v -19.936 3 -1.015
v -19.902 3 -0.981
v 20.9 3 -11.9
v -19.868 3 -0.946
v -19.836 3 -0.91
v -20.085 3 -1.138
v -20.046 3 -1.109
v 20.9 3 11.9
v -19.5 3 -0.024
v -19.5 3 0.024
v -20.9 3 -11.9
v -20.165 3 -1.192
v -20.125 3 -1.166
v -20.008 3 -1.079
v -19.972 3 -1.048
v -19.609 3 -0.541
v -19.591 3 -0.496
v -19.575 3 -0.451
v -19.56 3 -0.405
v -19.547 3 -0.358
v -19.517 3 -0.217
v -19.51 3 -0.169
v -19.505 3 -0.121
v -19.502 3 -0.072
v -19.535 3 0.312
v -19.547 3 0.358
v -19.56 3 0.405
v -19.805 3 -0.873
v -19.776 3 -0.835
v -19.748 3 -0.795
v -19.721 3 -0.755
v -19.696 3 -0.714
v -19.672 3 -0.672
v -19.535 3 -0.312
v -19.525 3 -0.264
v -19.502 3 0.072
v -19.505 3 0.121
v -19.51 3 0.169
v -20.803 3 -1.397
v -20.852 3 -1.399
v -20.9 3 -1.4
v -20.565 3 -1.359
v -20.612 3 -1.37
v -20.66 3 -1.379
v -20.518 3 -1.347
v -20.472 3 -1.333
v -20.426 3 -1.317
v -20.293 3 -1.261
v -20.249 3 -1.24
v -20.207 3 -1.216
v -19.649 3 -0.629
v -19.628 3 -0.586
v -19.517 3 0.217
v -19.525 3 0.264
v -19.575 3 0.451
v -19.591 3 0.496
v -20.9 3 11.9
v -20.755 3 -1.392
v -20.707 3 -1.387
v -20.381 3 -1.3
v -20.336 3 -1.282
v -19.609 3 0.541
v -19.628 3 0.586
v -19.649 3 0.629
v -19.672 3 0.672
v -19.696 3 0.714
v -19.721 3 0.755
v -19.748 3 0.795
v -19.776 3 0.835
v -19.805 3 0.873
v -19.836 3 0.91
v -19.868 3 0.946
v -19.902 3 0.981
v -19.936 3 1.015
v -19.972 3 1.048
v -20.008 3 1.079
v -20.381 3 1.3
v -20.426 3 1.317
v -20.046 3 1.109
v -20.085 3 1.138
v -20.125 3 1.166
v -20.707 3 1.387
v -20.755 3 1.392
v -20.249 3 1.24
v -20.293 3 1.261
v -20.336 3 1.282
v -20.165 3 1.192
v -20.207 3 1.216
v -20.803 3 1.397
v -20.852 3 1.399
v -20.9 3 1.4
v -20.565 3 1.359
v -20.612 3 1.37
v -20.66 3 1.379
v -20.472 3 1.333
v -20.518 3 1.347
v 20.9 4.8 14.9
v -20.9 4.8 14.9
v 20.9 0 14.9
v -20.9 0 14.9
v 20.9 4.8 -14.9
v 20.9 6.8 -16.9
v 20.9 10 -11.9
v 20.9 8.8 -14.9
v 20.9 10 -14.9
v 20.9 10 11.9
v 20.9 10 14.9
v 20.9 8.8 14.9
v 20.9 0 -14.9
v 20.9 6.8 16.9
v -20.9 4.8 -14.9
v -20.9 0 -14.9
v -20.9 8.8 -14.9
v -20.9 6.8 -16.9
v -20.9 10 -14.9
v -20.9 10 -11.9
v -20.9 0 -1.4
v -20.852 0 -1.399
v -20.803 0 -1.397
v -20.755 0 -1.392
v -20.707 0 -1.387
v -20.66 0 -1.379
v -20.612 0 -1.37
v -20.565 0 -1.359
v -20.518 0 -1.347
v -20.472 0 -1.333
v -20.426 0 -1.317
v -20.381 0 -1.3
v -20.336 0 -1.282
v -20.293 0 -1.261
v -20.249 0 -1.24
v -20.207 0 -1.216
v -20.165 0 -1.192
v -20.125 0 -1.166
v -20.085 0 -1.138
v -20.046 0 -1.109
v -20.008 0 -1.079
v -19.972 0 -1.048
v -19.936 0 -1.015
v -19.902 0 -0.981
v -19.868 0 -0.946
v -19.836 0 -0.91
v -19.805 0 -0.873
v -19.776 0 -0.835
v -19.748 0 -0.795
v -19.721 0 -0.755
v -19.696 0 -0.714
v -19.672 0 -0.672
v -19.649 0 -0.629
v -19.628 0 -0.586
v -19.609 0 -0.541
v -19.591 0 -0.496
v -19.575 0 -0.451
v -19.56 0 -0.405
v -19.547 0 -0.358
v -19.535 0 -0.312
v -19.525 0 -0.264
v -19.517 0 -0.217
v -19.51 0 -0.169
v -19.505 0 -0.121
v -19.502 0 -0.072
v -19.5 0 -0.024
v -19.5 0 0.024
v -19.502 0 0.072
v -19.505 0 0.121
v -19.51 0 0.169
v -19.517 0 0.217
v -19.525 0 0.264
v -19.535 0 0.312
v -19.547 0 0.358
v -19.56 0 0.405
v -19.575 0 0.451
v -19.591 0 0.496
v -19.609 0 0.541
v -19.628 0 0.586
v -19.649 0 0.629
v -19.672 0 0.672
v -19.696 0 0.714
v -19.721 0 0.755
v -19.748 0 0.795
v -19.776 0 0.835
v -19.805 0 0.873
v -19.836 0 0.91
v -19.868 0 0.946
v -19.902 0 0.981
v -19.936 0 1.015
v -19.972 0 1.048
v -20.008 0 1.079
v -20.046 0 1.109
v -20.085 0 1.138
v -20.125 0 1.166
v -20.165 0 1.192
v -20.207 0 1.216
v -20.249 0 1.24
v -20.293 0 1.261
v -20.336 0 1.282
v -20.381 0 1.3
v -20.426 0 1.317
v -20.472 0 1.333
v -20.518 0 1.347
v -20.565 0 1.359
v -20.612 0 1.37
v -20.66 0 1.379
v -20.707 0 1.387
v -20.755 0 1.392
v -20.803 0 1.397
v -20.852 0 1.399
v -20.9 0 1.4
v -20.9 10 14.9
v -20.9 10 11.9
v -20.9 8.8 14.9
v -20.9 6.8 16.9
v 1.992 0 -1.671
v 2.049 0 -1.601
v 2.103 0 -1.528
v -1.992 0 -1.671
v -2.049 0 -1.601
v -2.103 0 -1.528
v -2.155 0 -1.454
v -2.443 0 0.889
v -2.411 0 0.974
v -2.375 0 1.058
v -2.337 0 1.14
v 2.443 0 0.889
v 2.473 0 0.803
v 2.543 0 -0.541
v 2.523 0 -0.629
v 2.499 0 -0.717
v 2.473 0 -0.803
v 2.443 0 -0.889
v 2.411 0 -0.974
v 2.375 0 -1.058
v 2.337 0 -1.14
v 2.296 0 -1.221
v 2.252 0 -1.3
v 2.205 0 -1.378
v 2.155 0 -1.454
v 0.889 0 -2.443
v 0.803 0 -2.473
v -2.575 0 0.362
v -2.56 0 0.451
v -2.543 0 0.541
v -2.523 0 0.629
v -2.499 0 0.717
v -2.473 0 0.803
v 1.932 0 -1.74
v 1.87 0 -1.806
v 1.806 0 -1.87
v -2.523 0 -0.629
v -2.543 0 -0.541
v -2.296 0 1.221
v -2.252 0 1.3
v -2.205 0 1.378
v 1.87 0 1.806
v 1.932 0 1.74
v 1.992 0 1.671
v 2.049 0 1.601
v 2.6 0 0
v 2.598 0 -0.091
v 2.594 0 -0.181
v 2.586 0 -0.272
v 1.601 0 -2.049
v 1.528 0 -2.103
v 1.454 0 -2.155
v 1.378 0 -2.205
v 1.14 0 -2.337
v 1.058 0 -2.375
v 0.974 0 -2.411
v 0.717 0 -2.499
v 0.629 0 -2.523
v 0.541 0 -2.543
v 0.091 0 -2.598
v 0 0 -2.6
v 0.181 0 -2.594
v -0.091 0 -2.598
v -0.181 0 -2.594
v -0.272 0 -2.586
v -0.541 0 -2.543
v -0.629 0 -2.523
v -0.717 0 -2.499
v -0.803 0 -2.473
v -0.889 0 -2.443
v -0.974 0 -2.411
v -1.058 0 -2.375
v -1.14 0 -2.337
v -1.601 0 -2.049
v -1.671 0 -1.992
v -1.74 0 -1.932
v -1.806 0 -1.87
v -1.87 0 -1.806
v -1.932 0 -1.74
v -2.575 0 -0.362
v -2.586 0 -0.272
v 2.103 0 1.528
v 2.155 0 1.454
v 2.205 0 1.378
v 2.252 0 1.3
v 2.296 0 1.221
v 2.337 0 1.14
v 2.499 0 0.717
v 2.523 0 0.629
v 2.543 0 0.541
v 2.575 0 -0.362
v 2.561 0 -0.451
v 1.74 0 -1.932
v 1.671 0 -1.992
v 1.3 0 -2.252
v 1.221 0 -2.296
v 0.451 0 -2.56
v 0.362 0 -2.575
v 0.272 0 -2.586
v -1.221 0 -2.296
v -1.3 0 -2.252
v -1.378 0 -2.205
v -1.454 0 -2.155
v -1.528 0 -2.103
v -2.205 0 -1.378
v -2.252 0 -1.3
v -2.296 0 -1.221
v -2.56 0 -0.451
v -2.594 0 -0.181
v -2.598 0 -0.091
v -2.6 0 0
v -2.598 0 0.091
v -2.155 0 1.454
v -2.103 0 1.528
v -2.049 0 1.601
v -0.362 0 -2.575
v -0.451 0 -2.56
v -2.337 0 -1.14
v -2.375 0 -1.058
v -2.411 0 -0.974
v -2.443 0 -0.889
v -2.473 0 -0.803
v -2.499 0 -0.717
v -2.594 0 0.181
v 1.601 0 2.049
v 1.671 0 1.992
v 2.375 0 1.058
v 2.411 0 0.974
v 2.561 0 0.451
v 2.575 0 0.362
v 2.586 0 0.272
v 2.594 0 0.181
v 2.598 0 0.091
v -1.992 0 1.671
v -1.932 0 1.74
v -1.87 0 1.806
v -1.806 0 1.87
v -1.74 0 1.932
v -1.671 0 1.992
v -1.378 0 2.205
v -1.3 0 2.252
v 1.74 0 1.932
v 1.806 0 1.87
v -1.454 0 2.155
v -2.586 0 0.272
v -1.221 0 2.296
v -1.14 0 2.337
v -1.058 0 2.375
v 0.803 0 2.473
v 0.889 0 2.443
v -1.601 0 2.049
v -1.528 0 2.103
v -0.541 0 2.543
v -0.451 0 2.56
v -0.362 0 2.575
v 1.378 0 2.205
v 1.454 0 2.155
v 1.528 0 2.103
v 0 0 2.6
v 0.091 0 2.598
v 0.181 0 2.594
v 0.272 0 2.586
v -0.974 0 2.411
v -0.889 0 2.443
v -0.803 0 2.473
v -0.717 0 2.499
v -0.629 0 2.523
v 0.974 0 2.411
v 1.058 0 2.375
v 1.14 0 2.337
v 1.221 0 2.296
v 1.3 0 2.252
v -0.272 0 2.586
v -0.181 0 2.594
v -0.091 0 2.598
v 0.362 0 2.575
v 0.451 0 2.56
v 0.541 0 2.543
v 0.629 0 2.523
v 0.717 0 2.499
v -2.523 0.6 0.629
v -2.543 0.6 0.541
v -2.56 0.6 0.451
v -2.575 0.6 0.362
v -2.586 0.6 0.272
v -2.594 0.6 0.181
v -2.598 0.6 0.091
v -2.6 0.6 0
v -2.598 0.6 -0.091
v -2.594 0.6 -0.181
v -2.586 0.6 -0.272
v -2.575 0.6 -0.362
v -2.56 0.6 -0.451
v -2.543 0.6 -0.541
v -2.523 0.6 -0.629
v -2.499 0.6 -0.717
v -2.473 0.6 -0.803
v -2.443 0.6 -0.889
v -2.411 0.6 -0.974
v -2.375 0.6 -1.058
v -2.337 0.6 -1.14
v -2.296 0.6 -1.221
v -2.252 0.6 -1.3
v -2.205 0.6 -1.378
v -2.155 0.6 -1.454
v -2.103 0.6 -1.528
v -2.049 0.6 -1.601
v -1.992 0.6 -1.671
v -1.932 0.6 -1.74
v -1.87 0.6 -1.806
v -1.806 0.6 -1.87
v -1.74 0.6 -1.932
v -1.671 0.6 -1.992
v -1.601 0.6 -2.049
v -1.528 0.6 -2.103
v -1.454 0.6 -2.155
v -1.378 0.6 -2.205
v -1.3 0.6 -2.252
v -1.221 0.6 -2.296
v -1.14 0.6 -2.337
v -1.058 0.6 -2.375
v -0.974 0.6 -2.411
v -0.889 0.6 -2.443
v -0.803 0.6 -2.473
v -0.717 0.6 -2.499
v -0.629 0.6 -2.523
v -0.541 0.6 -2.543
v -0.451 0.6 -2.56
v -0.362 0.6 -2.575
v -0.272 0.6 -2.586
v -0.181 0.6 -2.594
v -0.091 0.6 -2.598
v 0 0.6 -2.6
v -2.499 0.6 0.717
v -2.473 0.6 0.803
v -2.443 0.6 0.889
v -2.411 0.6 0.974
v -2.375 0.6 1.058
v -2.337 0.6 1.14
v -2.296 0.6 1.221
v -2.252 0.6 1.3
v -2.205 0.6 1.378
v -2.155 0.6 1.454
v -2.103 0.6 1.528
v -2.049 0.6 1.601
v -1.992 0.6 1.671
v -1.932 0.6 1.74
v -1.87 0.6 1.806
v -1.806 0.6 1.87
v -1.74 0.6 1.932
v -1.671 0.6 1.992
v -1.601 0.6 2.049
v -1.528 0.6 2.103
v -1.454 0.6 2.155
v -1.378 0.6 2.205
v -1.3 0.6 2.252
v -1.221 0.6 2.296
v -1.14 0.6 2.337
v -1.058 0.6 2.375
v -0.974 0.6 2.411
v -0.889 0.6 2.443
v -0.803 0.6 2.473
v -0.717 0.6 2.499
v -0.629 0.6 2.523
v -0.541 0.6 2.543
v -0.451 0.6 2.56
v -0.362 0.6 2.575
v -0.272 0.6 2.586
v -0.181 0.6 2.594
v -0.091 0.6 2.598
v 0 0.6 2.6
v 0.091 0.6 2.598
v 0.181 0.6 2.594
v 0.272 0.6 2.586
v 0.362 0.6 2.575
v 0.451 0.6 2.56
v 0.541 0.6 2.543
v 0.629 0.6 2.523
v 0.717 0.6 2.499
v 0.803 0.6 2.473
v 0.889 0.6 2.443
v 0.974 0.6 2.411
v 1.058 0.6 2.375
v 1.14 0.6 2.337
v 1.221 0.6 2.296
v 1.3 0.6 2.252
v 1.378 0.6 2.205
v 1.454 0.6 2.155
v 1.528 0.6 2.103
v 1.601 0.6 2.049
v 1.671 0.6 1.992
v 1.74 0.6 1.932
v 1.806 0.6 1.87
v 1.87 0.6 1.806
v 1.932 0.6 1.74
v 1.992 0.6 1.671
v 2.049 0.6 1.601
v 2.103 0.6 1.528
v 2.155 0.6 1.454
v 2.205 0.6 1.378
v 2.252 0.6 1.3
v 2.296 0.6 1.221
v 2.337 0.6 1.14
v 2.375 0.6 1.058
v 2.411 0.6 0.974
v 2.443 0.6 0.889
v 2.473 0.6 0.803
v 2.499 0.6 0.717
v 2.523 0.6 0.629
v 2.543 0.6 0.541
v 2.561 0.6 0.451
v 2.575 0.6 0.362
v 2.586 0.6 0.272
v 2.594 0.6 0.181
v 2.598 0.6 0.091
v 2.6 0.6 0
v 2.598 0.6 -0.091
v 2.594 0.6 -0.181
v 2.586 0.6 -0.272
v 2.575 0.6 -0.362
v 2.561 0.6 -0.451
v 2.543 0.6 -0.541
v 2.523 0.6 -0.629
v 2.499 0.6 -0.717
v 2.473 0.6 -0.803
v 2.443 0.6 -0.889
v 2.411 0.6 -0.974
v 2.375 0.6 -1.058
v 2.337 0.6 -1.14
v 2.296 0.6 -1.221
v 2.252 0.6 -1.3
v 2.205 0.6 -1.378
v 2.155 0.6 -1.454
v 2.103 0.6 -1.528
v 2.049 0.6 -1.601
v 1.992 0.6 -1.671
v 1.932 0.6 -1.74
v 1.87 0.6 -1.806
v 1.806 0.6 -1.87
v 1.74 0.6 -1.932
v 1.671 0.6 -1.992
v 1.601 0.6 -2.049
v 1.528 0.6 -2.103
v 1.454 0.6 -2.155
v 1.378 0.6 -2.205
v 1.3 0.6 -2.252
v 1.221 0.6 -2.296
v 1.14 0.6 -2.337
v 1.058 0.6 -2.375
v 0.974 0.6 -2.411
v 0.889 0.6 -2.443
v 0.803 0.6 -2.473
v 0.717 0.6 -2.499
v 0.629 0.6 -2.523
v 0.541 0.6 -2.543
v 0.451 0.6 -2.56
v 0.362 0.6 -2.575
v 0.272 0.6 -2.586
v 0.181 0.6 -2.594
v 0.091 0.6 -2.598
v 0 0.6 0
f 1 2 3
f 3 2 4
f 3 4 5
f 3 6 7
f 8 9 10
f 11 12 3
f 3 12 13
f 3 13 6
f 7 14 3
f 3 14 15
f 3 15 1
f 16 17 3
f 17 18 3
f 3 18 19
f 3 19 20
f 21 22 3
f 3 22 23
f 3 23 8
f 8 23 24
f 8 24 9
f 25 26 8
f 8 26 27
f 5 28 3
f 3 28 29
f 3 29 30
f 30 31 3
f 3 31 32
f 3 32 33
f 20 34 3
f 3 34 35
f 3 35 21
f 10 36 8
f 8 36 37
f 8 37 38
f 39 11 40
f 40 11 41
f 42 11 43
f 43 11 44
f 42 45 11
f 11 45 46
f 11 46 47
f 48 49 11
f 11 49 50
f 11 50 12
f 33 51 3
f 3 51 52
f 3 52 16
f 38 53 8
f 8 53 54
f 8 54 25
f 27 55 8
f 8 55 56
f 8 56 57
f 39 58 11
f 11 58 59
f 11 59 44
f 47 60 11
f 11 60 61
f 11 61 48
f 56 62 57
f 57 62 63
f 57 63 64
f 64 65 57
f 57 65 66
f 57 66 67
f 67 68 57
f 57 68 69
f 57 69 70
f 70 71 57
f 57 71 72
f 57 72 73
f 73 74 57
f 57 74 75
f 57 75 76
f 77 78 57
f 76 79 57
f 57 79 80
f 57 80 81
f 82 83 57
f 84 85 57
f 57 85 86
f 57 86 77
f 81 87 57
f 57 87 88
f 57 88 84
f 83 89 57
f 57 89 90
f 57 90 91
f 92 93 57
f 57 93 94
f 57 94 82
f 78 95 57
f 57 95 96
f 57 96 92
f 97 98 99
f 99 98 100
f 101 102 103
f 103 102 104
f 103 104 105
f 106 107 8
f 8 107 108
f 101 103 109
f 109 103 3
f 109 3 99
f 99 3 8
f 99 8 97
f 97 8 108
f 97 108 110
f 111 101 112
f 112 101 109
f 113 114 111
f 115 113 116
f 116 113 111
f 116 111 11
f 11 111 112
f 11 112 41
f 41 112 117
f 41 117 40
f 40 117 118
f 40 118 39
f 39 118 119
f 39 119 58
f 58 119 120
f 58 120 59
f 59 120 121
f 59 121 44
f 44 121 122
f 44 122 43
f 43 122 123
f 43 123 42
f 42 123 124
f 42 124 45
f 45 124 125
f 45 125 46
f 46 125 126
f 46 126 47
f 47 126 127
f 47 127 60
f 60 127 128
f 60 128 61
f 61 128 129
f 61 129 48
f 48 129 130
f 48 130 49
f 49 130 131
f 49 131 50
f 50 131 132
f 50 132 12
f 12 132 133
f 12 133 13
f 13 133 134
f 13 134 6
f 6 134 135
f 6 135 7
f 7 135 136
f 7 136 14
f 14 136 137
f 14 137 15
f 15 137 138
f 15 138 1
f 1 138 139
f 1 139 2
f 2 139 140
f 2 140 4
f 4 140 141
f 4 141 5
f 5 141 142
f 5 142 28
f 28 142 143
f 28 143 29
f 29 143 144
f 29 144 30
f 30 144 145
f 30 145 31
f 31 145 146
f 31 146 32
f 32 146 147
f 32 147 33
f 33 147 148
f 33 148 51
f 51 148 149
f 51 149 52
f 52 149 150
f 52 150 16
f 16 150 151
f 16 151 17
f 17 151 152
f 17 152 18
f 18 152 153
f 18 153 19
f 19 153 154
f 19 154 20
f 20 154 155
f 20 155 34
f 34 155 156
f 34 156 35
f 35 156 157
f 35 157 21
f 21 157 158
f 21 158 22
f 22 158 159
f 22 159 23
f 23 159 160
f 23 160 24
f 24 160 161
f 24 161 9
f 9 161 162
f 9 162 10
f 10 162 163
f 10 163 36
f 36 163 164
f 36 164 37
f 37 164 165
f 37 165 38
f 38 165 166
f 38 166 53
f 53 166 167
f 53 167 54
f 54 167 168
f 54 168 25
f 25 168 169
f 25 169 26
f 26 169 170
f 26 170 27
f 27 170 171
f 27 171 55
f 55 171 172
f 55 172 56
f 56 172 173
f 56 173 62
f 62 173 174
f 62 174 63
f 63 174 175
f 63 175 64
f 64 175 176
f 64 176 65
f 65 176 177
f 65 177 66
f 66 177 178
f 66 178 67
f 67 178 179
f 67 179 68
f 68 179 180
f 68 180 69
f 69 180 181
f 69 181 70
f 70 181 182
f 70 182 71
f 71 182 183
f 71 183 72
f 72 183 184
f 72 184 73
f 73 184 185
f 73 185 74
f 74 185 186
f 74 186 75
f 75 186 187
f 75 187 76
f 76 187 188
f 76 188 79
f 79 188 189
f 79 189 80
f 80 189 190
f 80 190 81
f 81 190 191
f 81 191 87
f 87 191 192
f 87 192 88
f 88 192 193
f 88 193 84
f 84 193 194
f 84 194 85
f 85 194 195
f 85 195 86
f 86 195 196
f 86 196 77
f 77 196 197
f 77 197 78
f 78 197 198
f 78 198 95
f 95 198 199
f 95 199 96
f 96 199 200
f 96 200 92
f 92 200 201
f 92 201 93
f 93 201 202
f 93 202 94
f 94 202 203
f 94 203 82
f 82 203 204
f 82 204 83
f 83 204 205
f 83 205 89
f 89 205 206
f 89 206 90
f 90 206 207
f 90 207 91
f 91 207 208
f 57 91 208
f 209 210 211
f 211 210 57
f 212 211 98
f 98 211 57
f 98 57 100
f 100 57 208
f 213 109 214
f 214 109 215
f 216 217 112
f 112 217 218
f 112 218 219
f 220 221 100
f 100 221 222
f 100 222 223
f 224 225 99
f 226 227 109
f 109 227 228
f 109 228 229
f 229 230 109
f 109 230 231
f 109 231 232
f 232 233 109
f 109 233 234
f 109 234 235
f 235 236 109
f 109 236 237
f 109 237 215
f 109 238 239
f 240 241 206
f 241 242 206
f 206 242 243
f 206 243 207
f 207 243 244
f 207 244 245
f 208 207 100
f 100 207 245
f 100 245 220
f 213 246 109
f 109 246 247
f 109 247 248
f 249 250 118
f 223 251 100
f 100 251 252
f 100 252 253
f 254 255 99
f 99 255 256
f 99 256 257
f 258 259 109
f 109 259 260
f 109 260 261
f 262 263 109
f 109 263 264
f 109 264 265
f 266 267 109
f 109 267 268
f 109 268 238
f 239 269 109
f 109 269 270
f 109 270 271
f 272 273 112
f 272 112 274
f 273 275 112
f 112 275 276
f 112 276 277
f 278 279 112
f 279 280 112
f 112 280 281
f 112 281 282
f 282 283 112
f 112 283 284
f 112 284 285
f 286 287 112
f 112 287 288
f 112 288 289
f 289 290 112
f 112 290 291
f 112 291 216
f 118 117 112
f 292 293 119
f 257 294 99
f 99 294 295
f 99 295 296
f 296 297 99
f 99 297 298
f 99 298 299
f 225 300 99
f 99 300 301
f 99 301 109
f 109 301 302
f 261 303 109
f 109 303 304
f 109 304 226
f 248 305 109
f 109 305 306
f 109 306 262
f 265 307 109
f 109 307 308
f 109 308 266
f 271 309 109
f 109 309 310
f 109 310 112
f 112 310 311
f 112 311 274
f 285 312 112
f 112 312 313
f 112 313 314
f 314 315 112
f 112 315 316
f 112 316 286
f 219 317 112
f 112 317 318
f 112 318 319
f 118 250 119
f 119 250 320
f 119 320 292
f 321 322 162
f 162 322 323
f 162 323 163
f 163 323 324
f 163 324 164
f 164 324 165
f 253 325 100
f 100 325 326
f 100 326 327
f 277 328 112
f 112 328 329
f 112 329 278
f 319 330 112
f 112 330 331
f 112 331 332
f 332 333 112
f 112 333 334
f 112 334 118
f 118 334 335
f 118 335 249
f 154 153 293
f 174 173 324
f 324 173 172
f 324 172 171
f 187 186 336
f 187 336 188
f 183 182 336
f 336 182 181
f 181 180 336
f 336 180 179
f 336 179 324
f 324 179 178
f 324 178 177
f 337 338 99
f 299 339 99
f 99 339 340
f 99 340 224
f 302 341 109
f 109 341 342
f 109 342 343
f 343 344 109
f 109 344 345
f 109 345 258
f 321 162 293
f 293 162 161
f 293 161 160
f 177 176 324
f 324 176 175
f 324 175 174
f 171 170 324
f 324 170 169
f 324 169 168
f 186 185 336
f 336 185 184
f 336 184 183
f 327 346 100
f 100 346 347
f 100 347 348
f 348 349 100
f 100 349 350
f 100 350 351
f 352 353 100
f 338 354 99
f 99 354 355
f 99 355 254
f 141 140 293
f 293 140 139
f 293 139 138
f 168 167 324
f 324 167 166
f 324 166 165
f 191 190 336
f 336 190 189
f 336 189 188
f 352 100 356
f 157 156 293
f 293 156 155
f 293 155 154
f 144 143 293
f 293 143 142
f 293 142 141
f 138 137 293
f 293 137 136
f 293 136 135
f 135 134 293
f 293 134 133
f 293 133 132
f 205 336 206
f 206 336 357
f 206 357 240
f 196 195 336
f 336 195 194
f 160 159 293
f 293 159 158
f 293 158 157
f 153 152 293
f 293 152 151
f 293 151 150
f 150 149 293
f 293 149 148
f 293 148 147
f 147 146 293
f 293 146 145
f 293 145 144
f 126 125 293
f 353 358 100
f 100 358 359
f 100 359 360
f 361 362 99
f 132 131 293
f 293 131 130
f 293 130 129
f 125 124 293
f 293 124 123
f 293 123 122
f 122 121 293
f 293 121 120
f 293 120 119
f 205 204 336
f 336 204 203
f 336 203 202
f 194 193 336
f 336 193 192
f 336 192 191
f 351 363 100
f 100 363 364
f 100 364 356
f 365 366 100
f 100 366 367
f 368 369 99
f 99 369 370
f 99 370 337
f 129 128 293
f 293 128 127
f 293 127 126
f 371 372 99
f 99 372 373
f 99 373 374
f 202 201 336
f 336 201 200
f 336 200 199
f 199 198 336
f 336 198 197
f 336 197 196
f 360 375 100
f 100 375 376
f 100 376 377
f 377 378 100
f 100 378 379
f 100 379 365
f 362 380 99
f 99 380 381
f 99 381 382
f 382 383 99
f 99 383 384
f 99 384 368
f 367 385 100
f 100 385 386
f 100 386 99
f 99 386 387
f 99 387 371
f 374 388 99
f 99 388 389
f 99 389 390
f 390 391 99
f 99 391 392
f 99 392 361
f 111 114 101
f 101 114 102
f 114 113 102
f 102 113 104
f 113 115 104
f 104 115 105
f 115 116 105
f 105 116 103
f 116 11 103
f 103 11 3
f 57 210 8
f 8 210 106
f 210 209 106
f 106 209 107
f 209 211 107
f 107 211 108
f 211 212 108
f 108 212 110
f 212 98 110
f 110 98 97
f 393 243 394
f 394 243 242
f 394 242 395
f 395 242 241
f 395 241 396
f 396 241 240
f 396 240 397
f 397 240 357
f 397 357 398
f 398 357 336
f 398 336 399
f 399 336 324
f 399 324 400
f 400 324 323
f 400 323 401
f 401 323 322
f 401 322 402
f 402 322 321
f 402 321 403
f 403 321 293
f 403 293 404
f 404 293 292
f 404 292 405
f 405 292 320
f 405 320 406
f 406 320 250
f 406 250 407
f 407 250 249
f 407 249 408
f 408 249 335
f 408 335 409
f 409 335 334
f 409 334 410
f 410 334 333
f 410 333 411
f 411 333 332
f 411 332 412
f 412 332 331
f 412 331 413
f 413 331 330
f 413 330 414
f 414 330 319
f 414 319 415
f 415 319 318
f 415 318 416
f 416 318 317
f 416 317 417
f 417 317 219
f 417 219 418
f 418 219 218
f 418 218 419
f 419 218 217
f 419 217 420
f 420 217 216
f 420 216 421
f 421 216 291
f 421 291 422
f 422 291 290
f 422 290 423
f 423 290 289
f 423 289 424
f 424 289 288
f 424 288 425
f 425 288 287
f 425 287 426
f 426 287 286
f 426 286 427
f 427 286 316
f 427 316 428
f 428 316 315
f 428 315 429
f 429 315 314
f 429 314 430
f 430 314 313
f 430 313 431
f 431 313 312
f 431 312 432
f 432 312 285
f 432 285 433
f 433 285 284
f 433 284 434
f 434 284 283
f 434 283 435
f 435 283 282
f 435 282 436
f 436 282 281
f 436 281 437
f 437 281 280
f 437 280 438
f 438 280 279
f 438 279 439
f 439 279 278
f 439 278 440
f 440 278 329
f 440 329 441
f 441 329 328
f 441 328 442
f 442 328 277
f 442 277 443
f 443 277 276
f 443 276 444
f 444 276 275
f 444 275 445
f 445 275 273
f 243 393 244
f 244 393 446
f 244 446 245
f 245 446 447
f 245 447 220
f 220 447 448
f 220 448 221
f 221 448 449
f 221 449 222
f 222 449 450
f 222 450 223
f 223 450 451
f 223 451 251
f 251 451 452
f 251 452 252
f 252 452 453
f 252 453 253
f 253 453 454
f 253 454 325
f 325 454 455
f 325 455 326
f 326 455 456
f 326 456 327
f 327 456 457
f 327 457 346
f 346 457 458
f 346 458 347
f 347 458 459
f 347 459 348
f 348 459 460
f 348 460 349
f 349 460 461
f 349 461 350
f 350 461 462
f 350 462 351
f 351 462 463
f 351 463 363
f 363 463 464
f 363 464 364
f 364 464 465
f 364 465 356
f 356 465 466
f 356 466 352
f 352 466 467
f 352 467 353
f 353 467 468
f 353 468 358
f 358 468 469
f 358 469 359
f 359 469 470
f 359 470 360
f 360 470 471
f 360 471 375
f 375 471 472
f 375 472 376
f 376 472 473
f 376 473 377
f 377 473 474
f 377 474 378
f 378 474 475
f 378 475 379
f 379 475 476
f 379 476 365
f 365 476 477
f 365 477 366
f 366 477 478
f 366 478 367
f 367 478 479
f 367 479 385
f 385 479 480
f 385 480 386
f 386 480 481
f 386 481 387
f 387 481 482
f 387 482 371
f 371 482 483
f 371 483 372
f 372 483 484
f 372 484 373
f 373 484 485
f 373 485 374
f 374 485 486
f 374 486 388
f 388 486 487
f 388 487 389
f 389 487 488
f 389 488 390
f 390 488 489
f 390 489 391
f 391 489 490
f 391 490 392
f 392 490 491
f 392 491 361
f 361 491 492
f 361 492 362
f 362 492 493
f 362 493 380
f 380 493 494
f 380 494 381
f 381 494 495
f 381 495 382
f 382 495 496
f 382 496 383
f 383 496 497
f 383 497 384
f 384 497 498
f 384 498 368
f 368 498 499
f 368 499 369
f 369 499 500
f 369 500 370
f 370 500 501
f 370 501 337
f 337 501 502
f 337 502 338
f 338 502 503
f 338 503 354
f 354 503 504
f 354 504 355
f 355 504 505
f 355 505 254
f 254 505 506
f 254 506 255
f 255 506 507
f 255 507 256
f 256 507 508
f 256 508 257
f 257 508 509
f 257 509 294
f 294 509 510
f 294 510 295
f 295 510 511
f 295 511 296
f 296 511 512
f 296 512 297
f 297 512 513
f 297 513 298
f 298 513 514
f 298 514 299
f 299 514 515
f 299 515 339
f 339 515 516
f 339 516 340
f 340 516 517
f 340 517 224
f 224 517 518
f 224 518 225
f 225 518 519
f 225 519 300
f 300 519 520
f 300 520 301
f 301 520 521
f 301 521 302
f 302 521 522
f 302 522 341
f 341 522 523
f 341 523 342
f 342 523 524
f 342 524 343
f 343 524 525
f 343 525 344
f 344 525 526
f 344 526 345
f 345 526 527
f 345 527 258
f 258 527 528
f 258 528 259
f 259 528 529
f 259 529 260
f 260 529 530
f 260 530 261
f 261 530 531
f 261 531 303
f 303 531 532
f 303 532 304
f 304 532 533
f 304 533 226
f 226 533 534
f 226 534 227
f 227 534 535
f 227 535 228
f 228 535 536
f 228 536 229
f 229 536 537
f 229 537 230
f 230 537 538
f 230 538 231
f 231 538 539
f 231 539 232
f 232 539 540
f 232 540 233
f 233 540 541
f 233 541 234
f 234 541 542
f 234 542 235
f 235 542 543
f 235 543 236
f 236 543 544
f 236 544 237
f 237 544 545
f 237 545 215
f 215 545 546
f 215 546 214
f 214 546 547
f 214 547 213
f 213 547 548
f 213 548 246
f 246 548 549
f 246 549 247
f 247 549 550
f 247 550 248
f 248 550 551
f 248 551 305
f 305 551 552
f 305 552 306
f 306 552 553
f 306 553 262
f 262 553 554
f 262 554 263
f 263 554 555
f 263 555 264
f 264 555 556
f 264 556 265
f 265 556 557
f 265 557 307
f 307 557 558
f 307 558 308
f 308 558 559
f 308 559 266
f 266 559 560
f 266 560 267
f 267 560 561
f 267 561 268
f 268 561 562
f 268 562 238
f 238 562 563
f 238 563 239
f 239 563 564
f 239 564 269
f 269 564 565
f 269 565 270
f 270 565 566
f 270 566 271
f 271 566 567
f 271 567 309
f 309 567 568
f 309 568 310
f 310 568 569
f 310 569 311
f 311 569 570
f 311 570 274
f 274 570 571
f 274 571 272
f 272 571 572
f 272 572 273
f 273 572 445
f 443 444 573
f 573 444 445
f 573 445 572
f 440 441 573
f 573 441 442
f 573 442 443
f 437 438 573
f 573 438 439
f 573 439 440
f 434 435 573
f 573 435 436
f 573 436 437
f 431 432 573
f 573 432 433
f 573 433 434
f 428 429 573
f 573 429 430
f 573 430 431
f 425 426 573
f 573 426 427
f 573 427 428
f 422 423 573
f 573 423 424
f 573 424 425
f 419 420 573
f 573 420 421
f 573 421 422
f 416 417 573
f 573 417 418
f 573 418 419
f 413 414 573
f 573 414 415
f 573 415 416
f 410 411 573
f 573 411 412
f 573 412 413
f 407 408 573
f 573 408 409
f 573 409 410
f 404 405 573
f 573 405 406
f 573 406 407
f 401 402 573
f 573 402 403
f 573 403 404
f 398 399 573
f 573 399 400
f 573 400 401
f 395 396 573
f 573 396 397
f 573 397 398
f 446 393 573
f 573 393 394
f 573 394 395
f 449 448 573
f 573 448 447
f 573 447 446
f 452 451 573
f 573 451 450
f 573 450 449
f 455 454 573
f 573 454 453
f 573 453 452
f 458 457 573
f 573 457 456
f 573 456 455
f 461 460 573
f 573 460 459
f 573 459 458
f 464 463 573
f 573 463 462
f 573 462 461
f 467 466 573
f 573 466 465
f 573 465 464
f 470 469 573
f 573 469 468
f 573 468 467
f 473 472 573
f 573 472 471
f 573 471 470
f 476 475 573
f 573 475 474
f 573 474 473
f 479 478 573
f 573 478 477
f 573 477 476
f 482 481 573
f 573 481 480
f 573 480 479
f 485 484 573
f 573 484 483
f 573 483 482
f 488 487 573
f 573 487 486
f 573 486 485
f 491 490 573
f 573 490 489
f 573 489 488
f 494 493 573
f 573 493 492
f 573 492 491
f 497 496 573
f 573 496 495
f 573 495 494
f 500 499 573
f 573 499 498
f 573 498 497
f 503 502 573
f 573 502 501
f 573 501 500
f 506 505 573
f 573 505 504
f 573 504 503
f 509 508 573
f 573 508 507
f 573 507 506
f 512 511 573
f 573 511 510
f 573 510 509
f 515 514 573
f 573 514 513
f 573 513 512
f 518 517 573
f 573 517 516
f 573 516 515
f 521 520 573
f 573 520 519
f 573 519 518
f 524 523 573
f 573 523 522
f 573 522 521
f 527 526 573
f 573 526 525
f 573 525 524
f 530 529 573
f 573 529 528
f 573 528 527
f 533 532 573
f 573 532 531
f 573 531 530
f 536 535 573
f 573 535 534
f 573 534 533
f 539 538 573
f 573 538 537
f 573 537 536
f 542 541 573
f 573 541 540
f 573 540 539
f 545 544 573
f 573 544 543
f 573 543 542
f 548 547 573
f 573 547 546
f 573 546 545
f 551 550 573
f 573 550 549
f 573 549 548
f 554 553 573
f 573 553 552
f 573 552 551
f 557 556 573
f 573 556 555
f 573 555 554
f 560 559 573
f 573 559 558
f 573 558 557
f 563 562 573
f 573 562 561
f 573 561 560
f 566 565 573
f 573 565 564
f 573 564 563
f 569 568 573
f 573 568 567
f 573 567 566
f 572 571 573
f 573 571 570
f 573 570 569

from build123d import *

# Parameters (mm, degrees)
BOSS_EXTRUDE1_DEPTH = 3
BOSS_EXTRUDE2_DEPTH = 41.8
SKETCH5_R           = 2.6
CUT_EXTRUDE1_DEPTH  = 0.6


with BuildPart() as part:
    # Sketch2 → Boss-Extrude1 (new body)
    with BuildSketch(Plane(origin=(0, 0, 0), x_dir=(1, 0, 0), z_dir=(0, 1, 0))):
        with BuildLine():
            Line((-20.9, 1.4), (-20.9, 14.9))
            Line((-20.9, 14.9), (20.9, 14.9))
            Line((20.9, 14.9), (20.9, -14.9))
            Line((20.9, -14.9), (-20.9, -14.9))
            Line((-20.9, -14.9), (-20.9, -1.4))
            ThreePointArc((-20.9, -1.4), (-19.5, 0), (-20.9, 1.4))
        make_face()
    extrude(amount=BOSS_EXTRUDE1_DEPTH)

    # Sketch4 → Boss-Extrude2 (add)
    with BuildSketch(Plane.ZY.offset(20.9)):
        Polygon((-14.9, 3), (-14.9, 4.8), (-16.9, 6.8), (-14.9, 8.8), (-14.9, 10), (-11.9, 10), (-11.9, 3), align=None)
        Polygon((14.9, 3), (11.9, 3), (11.9, 10), (14.9, 10), (14.9, 8.8), (16.9, 6.8), (14.9, 4.8), align=None)
    extrude(amount=-BOSS_EXTRUDE2_DEPTH)

    # Sketch5 → Cut-Extrude1 (cut)
    with BuildSketch(Plane.XZ):
        with Locations(Location((0, 0, 0), (0, 0, 270))):
            Circle(SKETCH5_R)
    extrude(amount=-CUT_EXTRUDE1_DEPTH, mode=Mode.SUBTRACT)


solid = part.part
